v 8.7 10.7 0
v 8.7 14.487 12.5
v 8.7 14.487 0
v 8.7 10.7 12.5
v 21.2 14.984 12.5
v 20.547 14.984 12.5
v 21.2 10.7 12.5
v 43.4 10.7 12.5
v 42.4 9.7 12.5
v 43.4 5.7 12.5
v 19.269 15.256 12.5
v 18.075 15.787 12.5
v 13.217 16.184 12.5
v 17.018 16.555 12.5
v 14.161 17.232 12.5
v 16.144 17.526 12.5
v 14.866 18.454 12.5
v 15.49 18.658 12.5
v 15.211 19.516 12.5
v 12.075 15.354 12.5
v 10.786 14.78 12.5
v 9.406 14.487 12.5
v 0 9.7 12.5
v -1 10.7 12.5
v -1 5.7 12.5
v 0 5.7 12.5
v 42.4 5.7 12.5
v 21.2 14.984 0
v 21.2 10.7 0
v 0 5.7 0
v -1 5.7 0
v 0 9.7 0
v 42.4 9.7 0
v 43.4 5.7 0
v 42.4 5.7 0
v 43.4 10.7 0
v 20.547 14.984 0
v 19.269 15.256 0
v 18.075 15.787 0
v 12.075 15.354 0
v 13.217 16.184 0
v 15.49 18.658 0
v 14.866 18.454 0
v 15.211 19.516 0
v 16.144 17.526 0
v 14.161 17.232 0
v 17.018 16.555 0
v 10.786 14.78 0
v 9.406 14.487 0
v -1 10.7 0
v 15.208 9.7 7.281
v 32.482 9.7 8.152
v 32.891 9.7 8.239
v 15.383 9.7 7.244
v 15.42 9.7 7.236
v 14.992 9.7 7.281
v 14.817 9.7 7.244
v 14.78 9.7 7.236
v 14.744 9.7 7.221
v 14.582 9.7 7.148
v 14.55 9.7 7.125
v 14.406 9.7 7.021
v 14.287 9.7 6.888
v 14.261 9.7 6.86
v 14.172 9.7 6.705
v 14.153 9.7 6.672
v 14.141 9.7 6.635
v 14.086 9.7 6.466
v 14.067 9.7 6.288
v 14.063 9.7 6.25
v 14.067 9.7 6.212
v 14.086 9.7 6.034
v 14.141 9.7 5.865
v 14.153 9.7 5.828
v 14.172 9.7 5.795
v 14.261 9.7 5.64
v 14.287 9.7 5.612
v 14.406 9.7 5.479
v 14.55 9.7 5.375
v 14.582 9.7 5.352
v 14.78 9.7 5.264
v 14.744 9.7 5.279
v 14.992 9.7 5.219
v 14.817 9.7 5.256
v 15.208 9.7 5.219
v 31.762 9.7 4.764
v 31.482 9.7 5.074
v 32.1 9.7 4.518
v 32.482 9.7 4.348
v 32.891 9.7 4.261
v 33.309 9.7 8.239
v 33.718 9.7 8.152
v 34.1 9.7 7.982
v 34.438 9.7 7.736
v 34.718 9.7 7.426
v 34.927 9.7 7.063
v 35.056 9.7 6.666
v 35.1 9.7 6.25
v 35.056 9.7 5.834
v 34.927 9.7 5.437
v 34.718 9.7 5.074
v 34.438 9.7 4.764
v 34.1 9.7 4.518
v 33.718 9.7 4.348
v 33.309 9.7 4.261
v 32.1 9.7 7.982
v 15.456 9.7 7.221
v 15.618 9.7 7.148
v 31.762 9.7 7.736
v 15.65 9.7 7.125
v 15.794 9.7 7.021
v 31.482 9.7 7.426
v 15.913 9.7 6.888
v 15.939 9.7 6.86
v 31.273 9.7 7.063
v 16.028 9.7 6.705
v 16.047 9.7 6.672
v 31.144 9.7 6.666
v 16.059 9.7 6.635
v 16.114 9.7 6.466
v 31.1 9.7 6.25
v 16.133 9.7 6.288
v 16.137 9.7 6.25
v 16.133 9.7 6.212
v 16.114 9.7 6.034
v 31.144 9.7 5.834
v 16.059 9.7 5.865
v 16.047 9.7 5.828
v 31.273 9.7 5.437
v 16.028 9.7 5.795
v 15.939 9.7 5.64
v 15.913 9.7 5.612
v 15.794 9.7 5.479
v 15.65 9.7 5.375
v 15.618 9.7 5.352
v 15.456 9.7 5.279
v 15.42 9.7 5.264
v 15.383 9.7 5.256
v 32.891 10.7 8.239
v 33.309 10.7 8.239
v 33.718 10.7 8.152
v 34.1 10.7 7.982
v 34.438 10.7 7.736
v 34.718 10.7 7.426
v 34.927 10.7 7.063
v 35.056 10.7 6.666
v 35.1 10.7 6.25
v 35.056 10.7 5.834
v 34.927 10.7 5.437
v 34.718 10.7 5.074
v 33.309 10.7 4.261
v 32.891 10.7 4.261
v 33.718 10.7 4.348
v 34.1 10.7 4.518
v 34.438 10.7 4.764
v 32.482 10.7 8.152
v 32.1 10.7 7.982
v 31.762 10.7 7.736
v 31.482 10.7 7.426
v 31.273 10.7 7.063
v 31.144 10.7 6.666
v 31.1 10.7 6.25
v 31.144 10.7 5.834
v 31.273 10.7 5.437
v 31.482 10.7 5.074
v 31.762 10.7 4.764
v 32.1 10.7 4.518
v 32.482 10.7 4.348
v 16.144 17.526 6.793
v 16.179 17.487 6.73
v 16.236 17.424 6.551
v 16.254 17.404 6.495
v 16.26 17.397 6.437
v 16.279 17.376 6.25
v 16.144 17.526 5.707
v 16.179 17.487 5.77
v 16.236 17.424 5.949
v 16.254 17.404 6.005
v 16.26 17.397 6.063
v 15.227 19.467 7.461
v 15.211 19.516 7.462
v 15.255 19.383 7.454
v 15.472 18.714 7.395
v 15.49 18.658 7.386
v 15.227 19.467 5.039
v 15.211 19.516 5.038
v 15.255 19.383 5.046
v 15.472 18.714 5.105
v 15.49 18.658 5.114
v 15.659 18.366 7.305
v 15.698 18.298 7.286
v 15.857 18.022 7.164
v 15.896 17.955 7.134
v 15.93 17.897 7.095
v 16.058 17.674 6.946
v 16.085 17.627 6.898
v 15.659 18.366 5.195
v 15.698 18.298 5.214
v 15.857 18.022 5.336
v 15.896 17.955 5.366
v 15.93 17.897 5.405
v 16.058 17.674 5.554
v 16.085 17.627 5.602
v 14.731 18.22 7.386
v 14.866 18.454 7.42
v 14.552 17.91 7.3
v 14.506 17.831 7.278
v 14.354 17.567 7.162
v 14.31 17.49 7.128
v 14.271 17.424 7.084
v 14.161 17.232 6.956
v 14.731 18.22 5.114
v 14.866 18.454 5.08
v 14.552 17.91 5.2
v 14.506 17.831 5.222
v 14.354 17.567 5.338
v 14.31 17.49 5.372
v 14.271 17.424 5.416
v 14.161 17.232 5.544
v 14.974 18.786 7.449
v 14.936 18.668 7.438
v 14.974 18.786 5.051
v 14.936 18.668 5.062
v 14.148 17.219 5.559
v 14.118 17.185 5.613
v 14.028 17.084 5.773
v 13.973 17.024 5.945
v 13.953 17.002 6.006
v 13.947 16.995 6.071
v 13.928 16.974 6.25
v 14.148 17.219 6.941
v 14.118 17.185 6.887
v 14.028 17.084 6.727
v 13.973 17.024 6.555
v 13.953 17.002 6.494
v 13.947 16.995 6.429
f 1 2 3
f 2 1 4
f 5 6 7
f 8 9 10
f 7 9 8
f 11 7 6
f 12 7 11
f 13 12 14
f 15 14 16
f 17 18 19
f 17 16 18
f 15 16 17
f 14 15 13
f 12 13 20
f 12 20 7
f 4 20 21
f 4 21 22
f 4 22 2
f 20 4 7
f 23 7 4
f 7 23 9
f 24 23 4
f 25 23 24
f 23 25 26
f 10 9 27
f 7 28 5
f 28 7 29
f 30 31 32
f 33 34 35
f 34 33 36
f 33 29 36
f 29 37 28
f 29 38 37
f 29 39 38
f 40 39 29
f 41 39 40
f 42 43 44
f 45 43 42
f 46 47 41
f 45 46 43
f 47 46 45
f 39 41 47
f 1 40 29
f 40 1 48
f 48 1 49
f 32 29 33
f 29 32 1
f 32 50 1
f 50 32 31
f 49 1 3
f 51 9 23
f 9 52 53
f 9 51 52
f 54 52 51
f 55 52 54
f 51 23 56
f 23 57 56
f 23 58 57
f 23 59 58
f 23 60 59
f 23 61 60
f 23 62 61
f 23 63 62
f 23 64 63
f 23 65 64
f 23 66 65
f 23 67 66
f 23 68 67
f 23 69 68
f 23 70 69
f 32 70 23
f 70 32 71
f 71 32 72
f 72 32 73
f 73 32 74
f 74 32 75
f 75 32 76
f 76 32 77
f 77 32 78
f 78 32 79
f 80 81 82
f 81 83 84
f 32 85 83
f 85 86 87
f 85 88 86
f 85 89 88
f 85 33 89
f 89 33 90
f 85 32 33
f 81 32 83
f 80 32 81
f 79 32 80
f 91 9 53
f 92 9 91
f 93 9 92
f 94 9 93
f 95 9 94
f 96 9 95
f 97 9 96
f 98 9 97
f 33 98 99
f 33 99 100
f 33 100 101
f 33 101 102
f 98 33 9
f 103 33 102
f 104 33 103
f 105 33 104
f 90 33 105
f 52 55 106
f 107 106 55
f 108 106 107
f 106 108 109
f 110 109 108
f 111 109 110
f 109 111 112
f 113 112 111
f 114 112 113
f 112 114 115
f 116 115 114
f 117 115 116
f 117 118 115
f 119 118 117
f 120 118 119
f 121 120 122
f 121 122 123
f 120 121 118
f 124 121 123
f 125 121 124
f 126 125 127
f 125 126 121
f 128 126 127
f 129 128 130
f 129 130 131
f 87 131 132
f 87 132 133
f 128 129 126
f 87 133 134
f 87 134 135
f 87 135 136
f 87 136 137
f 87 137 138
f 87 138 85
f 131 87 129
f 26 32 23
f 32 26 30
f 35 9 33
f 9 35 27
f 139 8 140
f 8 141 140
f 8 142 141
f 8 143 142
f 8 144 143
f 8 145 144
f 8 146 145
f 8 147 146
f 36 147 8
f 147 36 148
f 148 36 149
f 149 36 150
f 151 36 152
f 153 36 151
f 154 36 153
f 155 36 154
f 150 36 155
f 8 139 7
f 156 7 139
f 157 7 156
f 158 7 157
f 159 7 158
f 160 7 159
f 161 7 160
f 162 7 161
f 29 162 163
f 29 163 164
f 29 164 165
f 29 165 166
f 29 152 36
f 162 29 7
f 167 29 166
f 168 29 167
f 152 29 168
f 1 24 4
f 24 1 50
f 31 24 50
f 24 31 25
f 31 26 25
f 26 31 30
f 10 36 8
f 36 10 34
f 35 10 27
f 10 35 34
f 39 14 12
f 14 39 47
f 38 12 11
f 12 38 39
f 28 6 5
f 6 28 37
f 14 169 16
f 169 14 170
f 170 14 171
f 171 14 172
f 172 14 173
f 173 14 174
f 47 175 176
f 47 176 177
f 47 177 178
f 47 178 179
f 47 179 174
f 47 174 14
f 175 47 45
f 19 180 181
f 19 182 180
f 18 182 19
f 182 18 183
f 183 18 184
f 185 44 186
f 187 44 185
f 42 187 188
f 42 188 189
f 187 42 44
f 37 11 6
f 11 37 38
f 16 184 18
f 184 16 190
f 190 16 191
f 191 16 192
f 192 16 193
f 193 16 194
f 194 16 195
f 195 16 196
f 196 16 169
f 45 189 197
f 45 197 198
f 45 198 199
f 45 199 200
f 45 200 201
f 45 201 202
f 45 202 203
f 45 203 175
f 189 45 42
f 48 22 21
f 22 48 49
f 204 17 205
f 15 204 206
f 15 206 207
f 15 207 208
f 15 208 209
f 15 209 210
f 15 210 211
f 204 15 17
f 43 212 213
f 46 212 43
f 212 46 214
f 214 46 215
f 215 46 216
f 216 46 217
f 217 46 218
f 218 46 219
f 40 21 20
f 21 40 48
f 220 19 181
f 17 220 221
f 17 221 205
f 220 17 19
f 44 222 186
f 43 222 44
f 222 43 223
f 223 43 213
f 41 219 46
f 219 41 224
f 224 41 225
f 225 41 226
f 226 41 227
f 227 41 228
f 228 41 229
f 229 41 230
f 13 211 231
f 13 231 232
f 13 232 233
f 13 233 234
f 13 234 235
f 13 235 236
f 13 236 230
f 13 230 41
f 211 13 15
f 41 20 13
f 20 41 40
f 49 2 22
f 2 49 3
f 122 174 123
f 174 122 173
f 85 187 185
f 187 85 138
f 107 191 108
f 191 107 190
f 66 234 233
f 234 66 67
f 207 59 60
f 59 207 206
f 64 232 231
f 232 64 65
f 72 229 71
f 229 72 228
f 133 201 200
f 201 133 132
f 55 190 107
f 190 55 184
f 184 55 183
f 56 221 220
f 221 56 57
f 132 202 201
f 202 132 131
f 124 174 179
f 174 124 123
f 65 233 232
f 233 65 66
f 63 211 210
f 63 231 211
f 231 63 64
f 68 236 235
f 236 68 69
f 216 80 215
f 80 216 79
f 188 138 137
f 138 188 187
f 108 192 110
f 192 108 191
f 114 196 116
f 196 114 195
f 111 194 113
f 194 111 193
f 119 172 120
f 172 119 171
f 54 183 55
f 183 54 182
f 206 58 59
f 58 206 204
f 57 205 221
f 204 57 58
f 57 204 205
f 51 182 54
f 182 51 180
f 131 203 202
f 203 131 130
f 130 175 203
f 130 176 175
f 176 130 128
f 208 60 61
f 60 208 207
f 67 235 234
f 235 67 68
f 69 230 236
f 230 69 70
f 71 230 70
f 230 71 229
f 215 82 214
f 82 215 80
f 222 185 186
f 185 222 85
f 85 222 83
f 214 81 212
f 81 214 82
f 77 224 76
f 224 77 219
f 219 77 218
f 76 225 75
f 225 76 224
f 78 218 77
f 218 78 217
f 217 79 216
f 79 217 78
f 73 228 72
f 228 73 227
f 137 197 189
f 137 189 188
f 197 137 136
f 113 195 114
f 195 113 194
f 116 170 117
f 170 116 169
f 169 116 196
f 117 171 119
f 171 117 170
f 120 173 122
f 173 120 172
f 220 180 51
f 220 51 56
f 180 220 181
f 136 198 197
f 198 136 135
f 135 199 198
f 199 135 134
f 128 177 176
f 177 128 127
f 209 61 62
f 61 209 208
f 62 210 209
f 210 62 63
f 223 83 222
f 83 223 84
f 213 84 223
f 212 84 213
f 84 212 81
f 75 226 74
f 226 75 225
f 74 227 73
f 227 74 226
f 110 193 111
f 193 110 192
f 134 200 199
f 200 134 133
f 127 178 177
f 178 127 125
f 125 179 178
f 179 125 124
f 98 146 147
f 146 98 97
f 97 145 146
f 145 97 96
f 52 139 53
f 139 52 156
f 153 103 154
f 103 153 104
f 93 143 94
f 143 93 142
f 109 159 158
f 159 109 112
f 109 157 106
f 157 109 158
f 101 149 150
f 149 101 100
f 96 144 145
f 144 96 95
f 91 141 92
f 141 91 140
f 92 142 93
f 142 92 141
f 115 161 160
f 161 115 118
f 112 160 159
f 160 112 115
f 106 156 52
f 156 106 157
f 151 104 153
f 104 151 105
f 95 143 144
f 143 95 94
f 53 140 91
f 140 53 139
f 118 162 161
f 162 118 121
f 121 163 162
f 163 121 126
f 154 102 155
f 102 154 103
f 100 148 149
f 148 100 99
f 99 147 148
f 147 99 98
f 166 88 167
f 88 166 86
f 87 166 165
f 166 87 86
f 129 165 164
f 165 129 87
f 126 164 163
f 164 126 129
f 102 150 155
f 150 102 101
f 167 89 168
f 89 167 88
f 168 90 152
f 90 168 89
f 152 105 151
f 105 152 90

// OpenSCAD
mount_width=42.4;
mount_height=32.7;
mount_depth=12.5;

filament_hole_offset=15.1;
mounting_hole_offset=mount_width-9.3;

gear_diameter=12;
roller_diameter=13;

tolerance=0.5;

//feeder main body
%translate([0,0,-1])
    difference() {
        cube([mount_width,mount_width,1]);
        translate([mount_width/2,mount_width/2,-1]) 
            cylinder(d=22,h=3);
    }

//feeder body base
%difference() {
    cube([mount_width,mount_width-mount_height,mount_depth]);
    translate([filament_hole_offset, mount_depth+1, mount_depth/2]) rotate([90,0,0]) cylinder(d=6,h=mount_depth+2);
    translate([mounting_hole_offset, mount_depth+1, mount_depth/2]) rotate([90,0,0]) cylinder(d=4,h=mount_depth+2);
}

//driving gear
%translate([mount_width/2,mount_width/2,0]) 
            cylinder(d=gear_diameter,h=mount_depth);

//idle roller
%translate([mount_width/2-roller_diameter/2-gear_diameter/2,mount_width/2,mount_depth/2-2.5]) 
            cylinder(d=roller_diameter,h=5);

//filament
%translate([filament_hole_offset, mount_width+1, mount_depth/2]) rotate([90,0,0]) cylinder(d=2,h=mount_width+2);

translate([mount_width/2-roller_diameter/2-gear_diameter/2,mount_width-mount_height,0])
difference() {
    union() {
        cube([roller_diameter/2+gear_diameter/2, mount_width/2-(mount_width-mount_height), mount_depth]);
        translate([-(mount_width/2-roller_diameter/2-gear_diameter/2),0,0]) cube([mount_width, 1, mount_depth]);
        translate([-(mount_width/2-roller_diameter/2-gear_diameter/2)-1,-4,0]) cube([1, 5, mount_depth]);
        translate([-(mount_width/2-roller_diameter/2-gear_diameter/2)+mount_width,-4,0]) cube([1, 5, mount_depth]);
    }
    //driving gear
    translate([roller_diameter/2+gear_diameter/2,mount_width/2-(mount_width-mount_height),-1]) 
            cylinder(d=gear_diameter+tolerance,h=mount_depth+2,$fs=0.1);

    //idle roller
    translate([0,mount_width/2-(mount_width-mount_height),-1]) 
                cylinder(d=roller_diameter+tolerance,h=mount_depth+2,$fs=0.1);
    
    //filament
    translate([filament_hole_offset-(mount_width/2-roller_diameter/2-gear_diameter/2), mount_width/2-(mount_width-mount_height), mount_depth/2]) rotate([90,0,0]) cylinder(d2=2,d1=2+tolerance,h=mount_width/2-(mount_width-mount_height)+2, $fs=0.1);
    
    //mounting screw/spring screw
    translate([mounting_hole_offset-(mount_width/2-roller_diameter/2-gear_diameter/2), 2, mount_depth/2]) rotate([90,0,0]) cylinder(d=4,h=1+2,$fs=0.1);
    
    //---
    //translate([filament_hole_offset-(mount_width/2-roller_diameter/2-gear_diameter/2), mount_width/2-(mount_width-mount_height)-8, mount_depth/2]) rotate([90,0,0]) cylinder(d=6,h=20, $fn=64);
}
